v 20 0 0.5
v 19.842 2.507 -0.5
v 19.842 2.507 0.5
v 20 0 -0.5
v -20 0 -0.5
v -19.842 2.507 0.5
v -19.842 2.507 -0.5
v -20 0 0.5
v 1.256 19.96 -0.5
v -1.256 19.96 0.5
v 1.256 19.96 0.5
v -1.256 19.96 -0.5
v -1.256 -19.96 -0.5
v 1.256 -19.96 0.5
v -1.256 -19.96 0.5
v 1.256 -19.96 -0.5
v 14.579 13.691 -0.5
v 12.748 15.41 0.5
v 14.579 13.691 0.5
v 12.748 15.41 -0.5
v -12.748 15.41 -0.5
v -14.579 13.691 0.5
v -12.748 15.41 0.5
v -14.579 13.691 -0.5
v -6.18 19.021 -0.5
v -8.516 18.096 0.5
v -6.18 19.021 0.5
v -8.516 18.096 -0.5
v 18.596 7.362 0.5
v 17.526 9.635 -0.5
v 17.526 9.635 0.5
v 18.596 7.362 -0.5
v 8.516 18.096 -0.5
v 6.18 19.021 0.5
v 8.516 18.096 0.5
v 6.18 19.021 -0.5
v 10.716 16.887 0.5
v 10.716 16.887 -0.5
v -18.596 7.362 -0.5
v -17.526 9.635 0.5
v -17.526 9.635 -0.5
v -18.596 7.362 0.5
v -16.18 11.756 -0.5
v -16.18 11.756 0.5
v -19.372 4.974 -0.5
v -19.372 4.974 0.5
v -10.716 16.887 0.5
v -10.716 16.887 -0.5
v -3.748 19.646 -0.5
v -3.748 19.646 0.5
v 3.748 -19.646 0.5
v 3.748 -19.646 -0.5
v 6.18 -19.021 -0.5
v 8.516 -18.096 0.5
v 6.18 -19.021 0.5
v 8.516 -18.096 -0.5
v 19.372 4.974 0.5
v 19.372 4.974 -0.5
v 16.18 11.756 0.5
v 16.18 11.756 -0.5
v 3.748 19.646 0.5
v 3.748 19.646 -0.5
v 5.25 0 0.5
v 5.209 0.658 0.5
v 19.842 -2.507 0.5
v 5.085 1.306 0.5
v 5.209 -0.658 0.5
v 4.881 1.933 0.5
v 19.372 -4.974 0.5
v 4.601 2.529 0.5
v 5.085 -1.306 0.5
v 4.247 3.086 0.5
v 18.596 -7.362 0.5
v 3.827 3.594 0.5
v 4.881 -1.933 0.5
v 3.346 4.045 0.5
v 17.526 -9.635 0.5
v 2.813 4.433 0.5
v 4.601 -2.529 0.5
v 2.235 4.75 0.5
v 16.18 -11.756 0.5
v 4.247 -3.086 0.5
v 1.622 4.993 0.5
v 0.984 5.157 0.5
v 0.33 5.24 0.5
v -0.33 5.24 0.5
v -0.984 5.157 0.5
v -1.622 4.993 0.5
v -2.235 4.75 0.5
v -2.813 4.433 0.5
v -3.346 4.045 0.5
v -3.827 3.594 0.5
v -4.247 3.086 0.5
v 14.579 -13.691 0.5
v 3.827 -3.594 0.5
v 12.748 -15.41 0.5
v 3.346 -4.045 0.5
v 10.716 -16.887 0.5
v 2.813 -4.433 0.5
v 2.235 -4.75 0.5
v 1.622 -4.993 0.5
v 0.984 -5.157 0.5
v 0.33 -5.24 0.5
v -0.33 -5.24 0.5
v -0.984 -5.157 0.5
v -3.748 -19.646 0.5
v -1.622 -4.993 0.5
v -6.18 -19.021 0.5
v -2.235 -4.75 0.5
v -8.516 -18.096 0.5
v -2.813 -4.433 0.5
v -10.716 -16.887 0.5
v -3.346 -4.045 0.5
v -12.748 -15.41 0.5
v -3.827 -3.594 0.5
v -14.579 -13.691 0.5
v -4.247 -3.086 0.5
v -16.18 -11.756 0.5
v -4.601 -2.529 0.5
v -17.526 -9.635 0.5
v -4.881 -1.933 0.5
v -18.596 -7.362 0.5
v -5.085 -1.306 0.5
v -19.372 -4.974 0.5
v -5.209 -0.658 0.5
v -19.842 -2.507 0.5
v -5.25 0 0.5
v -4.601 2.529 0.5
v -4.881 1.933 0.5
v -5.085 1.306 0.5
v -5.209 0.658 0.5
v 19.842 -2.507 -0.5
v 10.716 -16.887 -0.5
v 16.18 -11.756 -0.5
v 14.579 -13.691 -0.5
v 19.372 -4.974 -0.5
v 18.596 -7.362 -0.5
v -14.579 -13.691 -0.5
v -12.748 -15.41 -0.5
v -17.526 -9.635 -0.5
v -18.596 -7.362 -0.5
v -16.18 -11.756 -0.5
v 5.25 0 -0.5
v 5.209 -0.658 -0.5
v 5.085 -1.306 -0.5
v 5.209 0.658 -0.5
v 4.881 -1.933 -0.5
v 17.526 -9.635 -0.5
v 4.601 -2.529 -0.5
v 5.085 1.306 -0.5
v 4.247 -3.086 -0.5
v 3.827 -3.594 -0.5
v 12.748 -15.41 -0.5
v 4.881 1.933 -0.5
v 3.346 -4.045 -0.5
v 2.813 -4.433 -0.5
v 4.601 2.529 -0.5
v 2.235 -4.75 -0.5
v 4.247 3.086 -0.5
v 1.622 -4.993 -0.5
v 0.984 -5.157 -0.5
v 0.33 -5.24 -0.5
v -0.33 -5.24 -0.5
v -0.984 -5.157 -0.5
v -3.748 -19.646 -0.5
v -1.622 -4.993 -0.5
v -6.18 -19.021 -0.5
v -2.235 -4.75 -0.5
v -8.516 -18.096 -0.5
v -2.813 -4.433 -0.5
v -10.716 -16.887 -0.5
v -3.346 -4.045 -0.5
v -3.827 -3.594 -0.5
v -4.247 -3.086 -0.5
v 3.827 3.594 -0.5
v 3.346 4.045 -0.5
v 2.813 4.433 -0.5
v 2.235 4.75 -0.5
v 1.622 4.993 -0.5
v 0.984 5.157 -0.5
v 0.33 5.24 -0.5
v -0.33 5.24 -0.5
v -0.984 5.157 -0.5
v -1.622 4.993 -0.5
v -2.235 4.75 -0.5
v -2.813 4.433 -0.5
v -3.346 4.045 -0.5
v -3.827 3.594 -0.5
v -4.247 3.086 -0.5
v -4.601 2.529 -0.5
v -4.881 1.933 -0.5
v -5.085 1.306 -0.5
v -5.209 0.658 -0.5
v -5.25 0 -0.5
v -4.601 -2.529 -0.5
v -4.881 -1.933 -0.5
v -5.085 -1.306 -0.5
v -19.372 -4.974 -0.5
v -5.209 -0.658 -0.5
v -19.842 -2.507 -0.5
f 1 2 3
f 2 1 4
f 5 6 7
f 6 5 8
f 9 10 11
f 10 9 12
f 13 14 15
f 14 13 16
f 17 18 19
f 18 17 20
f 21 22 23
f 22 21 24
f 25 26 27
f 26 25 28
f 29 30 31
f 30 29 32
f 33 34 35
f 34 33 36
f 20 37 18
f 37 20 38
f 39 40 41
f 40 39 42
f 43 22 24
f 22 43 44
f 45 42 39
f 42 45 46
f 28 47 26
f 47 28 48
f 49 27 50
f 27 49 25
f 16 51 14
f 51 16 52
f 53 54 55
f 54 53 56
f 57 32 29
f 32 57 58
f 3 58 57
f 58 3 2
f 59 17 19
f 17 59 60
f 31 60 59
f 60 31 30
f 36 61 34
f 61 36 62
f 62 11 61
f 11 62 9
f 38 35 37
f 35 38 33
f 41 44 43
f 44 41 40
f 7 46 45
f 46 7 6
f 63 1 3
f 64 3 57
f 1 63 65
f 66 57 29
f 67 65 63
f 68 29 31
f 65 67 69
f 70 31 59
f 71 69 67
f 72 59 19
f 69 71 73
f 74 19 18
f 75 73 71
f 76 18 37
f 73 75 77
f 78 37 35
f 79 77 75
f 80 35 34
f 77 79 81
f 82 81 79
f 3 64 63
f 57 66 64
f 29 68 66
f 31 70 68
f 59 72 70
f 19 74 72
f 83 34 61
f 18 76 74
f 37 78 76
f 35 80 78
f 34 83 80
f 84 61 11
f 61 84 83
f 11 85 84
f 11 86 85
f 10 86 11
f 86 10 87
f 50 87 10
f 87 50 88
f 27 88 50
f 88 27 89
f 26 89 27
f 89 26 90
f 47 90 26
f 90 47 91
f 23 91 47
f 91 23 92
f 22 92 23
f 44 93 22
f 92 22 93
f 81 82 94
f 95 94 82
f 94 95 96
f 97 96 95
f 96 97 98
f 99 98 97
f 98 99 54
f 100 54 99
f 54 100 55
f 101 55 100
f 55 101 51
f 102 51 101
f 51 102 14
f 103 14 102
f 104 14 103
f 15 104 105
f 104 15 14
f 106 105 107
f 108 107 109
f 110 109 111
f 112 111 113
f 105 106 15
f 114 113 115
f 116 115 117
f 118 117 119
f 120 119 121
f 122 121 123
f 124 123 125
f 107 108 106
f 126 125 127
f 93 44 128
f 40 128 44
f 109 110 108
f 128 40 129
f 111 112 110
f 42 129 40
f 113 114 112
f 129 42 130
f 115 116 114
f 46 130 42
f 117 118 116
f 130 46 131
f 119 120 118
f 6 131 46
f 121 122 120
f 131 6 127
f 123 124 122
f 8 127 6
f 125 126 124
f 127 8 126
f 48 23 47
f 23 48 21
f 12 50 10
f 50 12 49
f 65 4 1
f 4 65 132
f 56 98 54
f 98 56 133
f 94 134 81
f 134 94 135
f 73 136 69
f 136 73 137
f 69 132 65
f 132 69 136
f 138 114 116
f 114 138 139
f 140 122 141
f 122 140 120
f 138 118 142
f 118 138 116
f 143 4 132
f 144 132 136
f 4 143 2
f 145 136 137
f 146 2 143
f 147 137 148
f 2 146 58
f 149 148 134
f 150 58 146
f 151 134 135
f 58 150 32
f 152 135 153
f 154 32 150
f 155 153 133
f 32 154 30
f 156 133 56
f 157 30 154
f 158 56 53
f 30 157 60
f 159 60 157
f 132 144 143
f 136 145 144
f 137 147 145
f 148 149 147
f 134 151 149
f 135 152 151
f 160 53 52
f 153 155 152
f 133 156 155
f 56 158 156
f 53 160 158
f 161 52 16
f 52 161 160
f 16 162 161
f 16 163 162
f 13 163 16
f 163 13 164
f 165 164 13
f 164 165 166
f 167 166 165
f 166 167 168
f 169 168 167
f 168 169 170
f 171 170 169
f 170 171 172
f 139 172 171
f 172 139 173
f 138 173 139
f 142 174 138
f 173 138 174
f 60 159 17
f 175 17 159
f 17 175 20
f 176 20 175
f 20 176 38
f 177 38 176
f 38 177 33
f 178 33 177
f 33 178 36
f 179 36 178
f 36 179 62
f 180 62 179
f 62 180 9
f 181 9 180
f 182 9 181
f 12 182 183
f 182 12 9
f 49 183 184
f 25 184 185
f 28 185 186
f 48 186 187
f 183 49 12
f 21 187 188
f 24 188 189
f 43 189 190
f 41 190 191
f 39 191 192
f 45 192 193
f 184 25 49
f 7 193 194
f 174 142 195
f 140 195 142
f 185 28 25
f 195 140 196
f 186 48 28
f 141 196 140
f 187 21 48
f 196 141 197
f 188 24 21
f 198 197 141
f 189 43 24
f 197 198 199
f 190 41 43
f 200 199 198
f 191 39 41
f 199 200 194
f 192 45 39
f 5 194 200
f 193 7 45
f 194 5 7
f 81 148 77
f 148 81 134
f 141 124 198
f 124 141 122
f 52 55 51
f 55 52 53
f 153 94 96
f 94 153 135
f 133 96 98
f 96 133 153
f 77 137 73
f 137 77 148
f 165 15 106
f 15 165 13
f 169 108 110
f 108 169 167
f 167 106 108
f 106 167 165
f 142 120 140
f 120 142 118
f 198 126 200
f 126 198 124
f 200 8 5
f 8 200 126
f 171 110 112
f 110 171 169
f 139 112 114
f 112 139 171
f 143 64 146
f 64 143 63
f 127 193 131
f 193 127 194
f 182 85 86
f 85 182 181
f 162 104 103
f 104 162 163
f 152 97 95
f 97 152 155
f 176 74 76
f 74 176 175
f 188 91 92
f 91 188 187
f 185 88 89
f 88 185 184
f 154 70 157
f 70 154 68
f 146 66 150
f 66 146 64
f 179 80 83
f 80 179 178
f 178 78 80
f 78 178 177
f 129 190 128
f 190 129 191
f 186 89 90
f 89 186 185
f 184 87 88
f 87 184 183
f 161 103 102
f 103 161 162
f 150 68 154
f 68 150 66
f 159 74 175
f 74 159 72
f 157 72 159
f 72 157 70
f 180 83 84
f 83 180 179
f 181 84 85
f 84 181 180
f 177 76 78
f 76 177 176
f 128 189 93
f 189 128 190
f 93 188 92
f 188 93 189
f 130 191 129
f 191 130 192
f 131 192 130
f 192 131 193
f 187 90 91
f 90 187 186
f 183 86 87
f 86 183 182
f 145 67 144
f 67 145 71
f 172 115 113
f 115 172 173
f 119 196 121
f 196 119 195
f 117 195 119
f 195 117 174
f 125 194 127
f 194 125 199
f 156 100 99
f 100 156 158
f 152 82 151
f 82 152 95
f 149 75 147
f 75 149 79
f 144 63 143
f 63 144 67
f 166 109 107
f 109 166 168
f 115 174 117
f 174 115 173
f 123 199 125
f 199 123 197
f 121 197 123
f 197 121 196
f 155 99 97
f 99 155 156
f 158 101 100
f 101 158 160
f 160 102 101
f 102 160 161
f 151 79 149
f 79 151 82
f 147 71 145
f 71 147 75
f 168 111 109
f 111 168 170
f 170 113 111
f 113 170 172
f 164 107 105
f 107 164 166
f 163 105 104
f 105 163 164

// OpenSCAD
$fn = 50;


difference() {
	union() {
		translate(v = [0, 0, -0.5000000000]) {
			cylinder(h = 1, r = 20.0000000000);
		}
	}
	union() {
		translate(v = [0, 0, -100.0000000000]) {
			cylinder(h = 200, r = 5.2500000000);
		}
	}
}
